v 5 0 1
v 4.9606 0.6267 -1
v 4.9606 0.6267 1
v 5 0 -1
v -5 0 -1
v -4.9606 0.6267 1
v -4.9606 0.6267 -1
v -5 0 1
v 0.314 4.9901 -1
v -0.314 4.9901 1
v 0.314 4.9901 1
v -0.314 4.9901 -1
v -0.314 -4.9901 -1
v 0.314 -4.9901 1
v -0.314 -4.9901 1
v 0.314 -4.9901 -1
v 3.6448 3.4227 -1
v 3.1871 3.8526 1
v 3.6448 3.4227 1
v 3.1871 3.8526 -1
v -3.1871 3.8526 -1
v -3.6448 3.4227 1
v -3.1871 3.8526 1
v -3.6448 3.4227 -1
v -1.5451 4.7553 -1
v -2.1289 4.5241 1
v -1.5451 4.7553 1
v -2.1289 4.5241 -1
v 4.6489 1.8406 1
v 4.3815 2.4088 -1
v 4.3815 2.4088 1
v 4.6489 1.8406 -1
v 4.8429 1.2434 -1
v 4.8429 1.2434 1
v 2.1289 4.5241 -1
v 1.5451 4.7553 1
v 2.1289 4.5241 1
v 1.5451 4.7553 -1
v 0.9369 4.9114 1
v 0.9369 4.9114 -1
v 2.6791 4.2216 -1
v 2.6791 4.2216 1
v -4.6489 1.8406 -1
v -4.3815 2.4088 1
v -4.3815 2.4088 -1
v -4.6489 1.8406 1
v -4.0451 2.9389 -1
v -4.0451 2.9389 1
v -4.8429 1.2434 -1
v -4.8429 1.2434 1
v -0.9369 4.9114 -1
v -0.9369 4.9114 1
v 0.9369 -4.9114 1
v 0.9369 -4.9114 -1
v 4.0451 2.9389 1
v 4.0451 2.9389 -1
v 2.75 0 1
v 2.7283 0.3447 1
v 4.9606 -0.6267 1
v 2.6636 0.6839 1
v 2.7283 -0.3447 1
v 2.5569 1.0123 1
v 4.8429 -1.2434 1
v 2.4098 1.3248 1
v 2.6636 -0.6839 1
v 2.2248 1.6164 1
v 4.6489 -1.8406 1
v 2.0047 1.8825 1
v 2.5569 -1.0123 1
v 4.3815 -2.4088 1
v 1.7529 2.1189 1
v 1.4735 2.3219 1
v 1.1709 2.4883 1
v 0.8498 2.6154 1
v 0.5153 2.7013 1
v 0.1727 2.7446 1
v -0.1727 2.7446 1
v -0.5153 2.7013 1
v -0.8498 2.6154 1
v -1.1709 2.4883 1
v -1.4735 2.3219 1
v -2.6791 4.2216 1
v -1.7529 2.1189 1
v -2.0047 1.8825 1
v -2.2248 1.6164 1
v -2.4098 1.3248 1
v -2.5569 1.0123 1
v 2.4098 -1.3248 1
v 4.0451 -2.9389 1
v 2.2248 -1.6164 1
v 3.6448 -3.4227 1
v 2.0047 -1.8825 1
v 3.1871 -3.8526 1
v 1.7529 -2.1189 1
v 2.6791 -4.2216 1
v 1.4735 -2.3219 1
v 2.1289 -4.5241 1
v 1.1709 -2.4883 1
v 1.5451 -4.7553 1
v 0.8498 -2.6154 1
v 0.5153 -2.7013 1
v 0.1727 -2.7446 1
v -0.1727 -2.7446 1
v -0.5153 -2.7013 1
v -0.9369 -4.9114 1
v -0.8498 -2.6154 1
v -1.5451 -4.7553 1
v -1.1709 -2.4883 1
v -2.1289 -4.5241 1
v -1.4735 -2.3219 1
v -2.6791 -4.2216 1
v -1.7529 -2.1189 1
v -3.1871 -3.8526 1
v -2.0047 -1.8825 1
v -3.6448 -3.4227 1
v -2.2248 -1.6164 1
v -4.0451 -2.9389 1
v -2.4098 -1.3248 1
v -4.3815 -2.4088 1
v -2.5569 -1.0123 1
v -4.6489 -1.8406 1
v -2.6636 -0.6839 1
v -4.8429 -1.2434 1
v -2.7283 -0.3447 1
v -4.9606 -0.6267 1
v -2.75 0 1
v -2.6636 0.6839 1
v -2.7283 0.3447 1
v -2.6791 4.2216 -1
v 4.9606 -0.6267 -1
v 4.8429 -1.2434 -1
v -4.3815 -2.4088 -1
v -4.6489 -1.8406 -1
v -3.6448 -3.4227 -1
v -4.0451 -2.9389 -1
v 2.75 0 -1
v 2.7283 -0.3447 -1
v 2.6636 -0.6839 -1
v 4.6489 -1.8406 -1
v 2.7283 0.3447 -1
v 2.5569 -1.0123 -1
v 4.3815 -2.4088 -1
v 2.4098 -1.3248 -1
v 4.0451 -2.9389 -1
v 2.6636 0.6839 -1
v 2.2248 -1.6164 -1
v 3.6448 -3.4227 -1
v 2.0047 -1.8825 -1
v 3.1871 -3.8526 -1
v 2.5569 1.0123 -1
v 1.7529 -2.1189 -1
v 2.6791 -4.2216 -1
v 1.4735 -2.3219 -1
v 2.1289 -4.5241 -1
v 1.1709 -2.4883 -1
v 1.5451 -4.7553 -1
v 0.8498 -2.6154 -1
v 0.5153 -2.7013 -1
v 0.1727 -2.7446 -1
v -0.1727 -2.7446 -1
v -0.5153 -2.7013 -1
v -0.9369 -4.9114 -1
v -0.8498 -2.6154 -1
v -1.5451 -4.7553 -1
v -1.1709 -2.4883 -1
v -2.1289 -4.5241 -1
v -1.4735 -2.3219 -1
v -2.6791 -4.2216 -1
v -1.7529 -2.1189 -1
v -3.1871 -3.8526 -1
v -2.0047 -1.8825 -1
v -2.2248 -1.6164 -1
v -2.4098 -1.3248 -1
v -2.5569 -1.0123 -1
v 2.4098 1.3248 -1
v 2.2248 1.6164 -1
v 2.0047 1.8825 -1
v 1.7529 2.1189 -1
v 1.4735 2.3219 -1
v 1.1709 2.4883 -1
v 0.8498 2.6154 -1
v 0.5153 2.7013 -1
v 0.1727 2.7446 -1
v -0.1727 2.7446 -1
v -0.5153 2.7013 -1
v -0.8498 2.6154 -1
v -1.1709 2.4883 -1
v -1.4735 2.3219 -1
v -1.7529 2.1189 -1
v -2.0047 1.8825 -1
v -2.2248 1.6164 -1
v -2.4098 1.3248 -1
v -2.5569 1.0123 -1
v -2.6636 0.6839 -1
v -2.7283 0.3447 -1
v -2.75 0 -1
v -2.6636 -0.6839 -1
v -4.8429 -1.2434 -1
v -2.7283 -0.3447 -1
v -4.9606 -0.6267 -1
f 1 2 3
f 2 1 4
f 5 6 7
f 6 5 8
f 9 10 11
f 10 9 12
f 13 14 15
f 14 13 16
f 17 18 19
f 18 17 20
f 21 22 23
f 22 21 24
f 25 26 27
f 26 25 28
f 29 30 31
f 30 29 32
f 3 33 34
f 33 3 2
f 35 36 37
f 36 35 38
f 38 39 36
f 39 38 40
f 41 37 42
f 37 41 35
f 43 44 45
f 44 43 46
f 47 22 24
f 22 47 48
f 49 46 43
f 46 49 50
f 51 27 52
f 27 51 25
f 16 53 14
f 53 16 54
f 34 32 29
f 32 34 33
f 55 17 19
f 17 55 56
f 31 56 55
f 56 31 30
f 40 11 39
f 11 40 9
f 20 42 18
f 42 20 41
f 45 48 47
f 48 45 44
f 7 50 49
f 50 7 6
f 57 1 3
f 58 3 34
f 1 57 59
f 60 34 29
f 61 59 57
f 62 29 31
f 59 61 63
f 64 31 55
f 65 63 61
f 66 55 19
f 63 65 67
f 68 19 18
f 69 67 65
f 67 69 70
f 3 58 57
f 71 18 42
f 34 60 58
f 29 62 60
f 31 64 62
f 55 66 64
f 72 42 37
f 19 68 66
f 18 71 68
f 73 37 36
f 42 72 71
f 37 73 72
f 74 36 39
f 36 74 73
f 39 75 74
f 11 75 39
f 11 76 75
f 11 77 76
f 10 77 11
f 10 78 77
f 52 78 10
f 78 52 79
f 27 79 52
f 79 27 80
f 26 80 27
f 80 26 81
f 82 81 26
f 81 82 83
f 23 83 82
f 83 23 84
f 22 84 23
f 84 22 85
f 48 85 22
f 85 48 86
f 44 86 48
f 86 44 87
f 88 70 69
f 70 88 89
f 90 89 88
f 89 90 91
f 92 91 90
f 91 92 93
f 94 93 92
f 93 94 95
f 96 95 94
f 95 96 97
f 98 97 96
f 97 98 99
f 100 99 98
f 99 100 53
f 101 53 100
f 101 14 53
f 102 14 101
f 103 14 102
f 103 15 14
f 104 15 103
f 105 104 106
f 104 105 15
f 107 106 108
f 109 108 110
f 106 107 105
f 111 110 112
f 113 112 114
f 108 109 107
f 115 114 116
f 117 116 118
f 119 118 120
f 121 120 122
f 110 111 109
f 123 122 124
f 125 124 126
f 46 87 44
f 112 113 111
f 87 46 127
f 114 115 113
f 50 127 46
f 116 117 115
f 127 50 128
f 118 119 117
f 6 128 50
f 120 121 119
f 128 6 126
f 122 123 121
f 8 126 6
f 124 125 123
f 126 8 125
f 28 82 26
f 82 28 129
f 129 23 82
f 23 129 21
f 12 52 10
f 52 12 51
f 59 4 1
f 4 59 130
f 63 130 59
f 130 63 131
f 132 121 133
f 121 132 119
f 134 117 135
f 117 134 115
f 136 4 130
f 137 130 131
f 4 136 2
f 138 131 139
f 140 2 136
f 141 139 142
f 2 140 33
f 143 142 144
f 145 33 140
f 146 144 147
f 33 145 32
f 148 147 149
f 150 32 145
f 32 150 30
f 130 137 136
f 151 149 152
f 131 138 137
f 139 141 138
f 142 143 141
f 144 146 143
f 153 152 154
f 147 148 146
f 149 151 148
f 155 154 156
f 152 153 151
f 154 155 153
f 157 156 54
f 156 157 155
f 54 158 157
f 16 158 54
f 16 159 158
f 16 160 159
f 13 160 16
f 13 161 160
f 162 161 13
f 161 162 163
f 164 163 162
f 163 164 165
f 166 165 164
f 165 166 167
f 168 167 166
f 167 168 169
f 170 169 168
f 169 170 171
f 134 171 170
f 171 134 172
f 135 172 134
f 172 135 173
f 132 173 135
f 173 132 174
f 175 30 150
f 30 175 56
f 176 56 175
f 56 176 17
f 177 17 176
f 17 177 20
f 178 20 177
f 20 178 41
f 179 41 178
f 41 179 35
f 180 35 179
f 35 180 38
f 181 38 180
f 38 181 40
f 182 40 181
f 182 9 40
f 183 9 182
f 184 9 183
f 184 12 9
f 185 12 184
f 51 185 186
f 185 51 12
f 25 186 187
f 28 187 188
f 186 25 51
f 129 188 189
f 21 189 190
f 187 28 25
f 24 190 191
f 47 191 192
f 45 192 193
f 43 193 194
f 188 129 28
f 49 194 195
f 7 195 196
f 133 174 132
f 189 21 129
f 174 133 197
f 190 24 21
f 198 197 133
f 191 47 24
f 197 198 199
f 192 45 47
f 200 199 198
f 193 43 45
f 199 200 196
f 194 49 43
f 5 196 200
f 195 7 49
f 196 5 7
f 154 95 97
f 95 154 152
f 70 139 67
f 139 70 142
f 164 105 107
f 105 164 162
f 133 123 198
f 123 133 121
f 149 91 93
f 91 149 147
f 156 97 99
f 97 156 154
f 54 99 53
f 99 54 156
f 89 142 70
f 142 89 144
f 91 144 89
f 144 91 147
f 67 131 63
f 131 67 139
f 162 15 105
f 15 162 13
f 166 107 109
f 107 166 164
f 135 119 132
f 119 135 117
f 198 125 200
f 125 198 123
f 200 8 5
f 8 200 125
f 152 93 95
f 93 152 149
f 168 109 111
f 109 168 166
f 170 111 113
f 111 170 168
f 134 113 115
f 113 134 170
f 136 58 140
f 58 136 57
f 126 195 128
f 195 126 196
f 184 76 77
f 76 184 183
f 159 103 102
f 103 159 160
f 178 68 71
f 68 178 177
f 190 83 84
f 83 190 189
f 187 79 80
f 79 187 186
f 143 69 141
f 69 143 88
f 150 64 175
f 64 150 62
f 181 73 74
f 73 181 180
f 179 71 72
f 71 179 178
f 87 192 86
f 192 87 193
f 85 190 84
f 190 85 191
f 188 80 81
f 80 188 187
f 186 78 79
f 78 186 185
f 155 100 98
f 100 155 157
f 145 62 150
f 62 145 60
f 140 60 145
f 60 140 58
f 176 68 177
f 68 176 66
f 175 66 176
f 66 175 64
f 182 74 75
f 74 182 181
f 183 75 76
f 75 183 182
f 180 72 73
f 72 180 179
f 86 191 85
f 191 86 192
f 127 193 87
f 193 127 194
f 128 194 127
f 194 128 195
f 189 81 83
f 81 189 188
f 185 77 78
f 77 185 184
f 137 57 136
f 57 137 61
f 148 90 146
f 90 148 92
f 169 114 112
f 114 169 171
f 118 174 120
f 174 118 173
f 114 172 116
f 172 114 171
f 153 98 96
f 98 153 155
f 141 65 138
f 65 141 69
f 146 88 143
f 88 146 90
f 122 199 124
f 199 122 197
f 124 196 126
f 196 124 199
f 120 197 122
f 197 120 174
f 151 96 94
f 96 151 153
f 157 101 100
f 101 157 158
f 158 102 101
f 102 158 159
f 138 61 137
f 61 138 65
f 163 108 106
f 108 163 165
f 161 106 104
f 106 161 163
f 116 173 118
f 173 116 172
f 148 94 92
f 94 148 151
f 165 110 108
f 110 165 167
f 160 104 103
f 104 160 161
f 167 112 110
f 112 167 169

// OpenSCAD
$fn = 50;


difference() {
	union() {
		translate(v = [0, 0, -1.0000000000]) {
			cylinder(h = 2, r = 5.0000000000);
		}
	}
	union() {
		translate(v = [0, 0, -100.0000000000]) {
			cylinder(h = 200, r = 2.7500000000);
		}
	}
}
